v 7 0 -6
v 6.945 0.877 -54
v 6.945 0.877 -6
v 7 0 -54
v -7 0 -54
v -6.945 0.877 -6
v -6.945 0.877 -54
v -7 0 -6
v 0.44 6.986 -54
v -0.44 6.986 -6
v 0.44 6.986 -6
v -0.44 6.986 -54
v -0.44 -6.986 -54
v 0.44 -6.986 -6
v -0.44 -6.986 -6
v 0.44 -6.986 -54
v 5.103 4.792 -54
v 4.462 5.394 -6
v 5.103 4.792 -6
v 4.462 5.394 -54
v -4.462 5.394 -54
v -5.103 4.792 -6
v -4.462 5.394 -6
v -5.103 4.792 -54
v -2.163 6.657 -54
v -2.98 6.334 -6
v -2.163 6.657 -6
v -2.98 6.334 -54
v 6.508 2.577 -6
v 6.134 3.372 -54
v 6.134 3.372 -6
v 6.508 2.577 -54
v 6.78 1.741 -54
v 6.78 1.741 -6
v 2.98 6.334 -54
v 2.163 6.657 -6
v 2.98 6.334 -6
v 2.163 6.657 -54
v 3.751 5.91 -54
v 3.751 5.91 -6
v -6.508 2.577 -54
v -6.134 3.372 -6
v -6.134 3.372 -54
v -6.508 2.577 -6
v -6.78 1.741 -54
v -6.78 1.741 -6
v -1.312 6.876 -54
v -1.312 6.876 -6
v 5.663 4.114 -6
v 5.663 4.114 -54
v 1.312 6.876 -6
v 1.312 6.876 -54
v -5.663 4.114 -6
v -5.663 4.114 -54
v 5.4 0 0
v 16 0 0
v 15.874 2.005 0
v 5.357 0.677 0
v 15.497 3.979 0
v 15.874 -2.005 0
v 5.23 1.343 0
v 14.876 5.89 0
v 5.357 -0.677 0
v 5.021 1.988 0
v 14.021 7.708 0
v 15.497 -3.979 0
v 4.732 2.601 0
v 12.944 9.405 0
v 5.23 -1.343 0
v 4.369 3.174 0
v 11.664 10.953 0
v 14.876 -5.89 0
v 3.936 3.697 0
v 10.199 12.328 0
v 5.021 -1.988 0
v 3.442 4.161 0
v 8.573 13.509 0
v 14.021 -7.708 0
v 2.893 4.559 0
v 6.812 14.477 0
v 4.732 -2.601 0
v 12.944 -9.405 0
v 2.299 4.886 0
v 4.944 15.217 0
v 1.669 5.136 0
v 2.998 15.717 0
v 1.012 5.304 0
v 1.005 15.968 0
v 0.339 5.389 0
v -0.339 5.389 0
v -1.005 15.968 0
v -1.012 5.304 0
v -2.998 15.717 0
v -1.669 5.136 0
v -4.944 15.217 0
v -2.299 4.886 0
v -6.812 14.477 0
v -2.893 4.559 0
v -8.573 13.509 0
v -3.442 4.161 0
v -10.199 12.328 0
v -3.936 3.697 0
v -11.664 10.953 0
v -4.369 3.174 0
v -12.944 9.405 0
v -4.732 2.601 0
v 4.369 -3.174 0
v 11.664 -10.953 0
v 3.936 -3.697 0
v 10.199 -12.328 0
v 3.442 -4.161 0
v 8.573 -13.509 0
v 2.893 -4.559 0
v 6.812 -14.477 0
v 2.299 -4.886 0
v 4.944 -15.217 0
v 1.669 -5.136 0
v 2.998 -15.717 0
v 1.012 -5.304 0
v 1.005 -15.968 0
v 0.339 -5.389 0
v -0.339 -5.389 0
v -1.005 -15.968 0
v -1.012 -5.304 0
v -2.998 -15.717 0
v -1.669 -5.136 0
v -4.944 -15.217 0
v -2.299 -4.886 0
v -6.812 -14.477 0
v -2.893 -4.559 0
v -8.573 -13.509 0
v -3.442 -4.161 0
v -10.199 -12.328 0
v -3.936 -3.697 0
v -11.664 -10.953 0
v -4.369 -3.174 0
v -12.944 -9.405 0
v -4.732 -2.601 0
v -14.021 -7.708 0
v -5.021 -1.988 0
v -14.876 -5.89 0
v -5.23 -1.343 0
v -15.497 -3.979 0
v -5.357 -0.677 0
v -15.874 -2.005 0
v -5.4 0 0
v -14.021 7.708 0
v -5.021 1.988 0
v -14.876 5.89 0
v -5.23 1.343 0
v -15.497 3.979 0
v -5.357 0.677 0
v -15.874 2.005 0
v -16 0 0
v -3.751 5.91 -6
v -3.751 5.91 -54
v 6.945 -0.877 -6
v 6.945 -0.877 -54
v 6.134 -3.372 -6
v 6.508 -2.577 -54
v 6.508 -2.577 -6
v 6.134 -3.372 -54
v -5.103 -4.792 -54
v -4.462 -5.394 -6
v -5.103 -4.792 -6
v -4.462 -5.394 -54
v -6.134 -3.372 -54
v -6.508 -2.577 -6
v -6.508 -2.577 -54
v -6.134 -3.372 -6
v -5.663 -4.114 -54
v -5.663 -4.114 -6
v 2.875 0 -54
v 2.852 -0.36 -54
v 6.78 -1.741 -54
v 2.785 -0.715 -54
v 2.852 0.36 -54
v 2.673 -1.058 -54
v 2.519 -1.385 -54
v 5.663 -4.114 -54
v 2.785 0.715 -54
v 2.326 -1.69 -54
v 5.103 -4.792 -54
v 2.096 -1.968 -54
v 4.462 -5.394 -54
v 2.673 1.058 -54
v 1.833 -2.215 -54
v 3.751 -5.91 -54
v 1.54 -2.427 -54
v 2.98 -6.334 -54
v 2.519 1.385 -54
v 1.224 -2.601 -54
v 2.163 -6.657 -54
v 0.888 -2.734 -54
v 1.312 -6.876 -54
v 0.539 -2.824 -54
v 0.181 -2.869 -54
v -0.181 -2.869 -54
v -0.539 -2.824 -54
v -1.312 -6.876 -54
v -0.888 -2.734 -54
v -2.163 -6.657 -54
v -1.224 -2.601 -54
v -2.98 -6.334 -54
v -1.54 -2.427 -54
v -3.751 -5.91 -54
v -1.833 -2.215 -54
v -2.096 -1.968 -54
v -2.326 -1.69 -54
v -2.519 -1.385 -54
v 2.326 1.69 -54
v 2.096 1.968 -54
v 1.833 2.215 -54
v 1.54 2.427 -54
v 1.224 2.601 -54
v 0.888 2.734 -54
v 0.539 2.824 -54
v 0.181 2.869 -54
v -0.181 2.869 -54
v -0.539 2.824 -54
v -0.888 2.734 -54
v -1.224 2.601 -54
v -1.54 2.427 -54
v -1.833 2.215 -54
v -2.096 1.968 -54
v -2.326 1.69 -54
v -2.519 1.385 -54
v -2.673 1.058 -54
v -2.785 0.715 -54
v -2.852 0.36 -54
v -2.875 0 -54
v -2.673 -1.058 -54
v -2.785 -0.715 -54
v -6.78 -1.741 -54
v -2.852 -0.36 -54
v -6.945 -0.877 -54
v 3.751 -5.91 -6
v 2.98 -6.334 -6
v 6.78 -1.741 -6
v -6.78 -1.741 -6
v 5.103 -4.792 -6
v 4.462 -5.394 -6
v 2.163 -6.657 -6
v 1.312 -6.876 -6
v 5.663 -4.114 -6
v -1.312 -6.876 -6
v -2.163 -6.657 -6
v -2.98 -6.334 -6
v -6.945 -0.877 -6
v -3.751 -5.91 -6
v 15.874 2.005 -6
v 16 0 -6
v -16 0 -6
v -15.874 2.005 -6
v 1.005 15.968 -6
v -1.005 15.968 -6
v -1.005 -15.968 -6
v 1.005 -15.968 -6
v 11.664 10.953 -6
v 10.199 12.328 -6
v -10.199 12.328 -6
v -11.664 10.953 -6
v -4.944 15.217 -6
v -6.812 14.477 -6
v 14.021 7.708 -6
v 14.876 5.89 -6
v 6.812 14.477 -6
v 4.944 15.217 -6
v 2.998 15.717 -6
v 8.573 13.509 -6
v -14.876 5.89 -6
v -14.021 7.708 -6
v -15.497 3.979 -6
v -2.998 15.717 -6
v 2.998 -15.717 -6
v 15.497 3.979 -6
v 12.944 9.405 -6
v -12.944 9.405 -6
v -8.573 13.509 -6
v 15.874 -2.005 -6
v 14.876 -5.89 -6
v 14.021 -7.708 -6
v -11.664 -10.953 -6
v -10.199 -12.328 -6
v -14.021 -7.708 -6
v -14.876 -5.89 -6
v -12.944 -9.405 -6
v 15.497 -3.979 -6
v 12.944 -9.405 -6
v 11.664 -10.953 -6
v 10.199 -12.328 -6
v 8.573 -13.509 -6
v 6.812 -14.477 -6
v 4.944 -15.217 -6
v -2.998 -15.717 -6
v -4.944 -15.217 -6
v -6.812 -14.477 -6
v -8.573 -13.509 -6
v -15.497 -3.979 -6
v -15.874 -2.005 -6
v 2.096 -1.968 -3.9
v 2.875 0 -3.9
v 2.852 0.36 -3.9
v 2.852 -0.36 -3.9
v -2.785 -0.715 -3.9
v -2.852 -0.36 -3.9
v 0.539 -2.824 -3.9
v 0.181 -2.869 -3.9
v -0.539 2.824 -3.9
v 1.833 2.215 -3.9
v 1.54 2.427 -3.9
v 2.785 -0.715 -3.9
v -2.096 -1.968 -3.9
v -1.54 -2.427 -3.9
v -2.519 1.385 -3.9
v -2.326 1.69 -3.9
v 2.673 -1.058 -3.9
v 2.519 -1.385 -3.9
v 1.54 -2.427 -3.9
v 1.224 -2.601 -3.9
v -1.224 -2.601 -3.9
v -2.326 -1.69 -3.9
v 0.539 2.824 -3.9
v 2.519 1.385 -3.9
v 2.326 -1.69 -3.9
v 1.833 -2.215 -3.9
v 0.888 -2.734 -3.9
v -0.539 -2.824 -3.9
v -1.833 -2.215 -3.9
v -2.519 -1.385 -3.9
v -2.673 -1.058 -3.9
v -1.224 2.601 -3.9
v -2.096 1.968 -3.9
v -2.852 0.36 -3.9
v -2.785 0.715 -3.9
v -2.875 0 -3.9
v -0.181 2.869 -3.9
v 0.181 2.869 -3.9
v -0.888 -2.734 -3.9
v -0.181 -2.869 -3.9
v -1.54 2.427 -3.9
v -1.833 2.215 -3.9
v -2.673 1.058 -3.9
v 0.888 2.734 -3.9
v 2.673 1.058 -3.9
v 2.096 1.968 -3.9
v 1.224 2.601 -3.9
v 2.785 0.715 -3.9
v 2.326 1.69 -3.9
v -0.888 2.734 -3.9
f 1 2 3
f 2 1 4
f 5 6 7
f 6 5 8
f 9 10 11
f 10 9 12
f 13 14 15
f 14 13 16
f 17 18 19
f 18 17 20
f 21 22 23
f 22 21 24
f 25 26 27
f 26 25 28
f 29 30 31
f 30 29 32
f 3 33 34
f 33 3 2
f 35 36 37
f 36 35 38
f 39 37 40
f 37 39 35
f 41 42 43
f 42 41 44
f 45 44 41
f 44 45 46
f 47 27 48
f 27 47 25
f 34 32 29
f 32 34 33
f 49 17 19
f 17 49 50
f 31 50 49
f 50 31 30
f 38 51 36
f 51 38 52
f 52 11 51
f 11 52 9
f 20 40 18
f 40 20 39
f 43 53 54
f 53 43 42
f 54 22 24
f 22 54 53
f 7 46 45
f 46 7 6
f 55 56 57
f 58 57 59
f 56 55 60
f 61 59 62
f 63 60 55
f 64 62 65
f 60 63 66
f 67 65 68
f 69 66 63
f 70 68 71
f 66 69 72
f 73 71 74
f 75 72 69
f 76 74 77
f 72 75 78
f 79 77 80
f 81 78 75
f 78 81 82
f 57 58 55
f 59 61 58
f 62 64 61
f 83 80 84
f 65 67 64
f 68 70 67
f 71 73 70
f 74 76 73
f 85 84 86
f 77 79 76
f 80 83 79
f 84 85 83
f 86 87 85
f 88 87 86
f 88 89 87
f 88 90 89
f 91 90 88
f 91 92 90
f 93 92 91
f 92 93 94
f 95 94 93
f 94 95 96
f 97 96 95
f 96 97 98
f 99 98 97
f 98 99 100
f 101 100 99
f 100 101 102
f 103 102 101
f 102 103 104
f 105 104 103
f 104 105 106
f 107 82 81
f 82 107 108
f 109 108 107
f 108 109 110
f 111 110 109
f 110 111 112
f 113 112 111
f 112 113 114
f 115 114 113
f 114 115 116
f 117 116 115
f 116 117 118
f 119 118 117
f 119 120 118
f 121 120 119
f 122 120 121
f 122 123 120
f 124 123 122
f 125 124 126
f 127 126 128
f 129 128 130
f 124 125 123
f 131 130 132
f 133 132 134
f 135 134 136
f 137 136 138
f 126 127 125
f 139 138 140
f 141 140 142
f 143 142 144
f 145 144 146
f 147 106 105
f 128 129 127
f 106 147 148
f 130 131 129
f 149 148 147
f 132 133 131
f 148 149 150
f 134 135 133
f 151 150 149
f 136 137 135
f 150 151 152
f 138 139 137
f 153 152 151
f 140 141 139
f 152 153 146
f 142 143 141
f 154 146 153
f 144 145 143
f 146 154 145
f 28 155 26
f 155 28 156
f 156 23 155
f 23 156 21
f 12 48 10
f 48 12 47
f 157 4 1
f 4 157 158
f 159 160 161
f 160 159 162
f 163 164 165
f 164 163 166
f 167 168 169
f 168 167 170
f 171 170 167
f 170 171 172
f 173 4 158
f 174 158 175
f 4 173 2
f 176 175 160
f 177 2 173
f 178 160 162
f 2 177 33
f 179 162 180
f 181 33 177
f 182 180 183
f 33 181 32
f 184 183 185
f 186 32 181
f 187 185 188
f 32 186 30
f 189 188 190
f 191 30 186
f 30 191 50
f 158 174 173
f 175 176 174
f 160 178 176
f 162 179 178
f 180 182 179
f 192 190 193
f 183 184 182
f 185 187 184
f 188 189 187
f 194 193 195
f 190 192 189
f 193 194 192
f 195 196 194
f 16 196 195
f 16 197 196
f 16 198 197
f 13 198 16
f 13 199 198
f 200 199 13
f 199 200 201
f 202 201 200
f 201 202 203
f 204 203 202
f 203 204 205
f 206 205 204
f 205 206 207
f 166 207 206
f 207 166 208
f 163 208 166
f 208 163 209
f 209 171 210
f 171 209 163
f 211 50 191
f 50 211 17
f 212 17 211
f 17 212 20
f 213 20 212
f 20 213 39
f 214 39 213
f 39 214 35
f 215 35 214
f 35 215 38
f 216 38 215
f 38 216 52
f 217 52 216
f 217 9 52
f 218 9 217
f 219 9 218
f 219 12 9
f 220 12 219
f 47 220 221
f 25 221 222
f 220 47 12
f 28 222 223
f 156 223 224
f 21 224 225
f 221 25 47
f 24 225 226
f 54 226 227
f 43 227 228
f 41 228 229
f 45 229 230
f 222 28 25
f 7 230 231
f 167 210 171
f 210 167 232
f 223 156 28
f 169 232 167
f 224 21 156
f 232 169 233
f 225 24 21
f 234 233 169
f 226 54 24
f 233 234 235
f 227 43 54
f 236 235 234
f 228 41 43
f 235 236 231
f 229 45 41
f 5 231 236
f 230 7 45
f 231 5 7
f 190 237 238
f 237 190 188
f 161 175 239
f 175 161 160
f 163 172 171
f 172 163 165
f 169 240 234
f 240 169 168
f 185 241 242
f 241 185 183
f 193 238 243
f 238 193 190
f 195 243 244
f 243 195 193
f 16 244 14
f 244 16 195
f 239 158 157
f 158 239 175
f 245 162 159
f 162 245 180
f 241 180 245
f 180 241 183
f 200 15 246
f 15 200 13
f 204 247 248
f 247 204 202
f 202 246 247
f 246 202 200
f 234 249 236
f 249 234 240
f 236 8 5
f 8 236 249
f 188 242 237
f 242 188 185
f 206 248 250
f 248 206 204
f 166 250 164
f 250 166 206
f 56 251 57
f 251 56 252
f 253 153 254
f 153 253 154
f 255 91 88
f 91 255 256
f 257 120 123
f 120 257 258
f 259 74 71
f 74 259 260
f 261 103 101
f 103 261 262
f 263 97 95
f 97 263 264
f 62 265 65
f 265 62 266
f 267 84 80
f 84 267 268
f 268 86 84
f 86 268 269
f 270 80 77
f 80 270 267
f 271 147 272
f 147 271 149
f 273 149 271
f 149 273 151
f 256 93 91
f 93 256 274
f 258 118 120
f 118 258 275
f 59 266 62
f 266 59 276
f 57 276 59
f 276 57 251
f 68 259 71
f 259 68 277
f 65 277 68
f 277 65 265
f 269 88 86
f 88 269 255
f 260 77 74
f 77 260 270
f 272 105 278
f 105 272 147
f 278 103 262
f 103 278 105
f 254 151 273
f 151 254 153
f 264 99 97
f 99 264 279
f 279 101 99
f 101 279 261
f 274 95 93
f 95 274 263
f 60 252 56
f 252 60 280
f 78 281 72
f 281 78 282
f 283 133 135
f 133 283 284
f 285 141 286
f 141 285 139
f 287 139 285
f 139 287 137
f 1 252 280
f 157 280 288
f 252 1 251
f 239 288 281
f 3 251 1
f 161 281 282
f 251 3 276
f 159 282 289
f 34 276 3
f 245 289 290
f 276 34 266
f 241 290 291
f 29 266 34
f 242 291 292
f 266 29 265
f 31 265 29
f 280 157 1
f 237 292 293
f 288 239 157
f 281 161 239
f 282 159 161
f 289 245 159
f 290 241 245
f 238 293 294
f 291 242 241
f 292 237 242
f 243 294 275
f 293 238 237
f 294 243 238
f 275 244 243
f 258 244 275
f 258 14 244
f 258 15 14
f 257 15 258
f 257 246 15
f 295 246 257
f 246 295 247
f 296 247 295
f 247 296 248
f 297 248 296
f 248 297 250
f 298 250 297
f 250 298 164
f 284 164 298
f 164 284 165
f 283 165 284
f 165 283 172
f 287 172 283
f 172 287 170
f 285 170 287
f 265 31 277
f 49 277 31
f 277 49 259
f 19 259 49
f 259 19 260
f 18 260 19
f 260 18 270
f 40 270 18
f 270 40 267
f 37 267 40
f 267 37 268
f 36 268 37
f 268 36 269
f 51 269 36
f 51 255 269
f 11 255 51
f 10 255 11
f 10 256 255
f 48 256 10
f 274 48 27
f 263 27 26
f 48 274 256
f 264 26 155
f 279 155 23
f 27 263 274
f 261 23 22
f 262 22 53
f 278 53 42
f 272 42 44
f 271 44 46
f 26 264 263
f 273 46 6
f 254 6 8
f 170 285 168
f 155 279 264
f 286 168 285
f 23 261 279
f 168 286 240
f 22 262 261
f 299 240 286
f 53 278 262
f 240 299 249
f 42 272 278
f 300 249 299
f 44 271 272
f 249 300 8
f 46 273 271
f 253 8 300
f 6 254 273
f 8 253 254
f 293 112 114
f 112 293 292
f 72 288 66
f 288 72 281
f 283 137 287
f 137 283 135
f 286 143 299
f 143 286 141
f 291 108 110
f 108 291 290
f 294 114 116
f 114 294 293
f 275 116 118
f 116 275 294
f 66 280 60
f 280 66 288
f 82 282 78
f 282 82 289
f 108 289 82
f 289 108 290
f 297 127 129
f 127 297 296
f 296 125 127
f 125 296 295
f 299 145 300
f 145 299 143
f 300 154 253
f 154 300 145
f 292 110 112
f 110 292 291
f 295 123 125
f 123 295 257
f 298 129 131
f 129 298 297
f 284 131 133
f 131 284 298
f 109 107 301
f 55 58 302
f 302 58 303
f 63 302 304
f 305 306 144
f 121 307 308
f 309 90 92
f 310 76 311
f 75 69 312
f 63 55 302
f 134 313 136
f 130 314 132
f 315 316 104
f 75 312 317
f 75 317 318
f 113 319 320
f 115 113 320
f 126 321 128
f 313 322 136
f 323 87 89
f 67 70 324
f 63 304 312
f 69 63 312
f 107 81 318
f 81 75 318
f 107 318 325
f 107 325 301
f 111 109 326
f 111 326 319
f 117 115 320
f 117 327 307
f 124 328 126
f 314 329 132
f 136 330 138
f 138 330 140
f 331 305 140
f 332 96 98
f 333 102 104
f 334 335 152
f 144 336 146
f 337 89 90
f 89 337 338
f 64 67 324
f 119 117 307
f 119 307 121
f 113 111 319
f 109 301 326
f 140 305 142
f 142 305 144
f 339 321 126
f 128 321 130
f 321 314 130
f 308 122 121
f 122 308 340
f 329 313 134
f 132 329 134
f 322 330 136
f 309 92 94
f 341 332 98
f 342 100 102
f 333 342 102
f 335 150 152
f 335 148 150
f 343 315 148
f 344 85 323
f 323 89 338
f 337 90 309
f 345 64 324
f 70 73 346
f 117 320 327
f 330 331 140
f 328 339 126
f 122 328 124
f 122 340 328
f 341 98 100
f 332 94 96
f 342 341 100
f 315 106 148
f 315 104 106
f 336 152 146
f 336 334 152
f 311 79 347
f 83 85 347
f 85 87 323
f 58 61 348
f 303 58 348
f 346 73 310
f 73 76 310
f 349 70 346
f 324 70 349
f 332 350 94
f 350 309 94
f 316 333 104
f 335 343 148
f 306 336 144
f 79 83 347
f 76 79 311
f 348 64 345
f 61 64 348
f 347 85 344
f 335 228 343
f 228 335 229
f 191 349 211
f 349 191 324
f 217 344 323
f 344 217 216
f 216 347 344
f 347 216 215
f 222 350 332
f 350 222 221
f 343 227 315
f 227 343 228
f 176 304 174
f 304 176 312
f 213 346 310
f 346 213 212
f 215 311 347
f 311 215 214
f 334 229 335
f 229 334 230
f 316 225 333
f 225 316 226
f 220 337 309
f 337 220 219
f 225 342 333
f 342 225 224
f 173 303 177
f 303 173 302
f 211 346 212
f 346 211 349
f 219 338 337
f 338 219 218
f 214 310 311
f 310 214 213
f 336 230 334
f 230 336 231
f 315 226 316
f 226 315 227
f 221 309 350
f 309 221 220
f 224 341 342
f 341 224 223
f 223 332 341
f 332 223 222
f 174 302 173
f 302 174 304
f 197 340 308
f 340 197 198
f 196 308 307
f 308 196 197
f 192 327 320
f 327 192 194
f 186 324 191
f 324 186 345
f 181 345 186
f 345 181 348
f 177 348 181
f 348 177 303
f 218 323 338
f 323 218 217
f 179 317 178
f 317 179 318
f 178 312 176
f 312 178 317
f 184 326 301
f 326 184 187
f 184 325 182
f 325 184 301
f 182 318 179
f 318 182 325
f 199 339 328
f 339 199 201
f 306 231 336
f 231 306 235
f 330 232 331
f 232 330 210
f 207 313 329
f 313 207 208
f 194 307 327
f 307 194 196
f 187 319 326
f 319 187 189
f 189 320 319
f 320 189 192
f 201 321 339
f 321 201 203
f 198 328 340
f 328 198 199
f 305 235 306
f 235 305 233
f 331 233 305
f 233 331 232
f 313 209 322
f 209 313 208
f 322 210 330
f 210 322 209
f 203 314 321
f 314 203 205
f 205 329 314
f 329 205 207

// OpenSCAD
$fn = 50;


difference() {
	union() {
		translate(v = [0, 0, -54.0000000000]) {
			cylinder(h = 54, r = 7.0000000000);
		}
		translate(v = [0, 0, -6.0000000000]) {
			cylinder(h = 6, r = 16.0000000000);
		}
	}
	union() {
		translate(v = [0, 0, 0]) {
			rotate(a = [0, 0, 0]) {
				difference() {
					union() {
						#translate(v = [0, 0, -54.0000000000]) {
							cylinder(h = 54, r = 2.6000000000);
						}
						#translate(v = [0, 0, -3.9000000000]) {
							cylinder(h = 3.9000000000, r1 = 2.8750000000, r2 = 5.4000000000);
						}
						#translate(v = [0, 0, -54.0000000000]) {
							cylinder(h = 54, r = 2.8750000000);
						}
						#translate(v = [0, 0, -54.0000000000]) {
							cylinder(h = 54, r = 2.6000000000);
						}
					}
					union();
				}
			}
		}
	}
}
